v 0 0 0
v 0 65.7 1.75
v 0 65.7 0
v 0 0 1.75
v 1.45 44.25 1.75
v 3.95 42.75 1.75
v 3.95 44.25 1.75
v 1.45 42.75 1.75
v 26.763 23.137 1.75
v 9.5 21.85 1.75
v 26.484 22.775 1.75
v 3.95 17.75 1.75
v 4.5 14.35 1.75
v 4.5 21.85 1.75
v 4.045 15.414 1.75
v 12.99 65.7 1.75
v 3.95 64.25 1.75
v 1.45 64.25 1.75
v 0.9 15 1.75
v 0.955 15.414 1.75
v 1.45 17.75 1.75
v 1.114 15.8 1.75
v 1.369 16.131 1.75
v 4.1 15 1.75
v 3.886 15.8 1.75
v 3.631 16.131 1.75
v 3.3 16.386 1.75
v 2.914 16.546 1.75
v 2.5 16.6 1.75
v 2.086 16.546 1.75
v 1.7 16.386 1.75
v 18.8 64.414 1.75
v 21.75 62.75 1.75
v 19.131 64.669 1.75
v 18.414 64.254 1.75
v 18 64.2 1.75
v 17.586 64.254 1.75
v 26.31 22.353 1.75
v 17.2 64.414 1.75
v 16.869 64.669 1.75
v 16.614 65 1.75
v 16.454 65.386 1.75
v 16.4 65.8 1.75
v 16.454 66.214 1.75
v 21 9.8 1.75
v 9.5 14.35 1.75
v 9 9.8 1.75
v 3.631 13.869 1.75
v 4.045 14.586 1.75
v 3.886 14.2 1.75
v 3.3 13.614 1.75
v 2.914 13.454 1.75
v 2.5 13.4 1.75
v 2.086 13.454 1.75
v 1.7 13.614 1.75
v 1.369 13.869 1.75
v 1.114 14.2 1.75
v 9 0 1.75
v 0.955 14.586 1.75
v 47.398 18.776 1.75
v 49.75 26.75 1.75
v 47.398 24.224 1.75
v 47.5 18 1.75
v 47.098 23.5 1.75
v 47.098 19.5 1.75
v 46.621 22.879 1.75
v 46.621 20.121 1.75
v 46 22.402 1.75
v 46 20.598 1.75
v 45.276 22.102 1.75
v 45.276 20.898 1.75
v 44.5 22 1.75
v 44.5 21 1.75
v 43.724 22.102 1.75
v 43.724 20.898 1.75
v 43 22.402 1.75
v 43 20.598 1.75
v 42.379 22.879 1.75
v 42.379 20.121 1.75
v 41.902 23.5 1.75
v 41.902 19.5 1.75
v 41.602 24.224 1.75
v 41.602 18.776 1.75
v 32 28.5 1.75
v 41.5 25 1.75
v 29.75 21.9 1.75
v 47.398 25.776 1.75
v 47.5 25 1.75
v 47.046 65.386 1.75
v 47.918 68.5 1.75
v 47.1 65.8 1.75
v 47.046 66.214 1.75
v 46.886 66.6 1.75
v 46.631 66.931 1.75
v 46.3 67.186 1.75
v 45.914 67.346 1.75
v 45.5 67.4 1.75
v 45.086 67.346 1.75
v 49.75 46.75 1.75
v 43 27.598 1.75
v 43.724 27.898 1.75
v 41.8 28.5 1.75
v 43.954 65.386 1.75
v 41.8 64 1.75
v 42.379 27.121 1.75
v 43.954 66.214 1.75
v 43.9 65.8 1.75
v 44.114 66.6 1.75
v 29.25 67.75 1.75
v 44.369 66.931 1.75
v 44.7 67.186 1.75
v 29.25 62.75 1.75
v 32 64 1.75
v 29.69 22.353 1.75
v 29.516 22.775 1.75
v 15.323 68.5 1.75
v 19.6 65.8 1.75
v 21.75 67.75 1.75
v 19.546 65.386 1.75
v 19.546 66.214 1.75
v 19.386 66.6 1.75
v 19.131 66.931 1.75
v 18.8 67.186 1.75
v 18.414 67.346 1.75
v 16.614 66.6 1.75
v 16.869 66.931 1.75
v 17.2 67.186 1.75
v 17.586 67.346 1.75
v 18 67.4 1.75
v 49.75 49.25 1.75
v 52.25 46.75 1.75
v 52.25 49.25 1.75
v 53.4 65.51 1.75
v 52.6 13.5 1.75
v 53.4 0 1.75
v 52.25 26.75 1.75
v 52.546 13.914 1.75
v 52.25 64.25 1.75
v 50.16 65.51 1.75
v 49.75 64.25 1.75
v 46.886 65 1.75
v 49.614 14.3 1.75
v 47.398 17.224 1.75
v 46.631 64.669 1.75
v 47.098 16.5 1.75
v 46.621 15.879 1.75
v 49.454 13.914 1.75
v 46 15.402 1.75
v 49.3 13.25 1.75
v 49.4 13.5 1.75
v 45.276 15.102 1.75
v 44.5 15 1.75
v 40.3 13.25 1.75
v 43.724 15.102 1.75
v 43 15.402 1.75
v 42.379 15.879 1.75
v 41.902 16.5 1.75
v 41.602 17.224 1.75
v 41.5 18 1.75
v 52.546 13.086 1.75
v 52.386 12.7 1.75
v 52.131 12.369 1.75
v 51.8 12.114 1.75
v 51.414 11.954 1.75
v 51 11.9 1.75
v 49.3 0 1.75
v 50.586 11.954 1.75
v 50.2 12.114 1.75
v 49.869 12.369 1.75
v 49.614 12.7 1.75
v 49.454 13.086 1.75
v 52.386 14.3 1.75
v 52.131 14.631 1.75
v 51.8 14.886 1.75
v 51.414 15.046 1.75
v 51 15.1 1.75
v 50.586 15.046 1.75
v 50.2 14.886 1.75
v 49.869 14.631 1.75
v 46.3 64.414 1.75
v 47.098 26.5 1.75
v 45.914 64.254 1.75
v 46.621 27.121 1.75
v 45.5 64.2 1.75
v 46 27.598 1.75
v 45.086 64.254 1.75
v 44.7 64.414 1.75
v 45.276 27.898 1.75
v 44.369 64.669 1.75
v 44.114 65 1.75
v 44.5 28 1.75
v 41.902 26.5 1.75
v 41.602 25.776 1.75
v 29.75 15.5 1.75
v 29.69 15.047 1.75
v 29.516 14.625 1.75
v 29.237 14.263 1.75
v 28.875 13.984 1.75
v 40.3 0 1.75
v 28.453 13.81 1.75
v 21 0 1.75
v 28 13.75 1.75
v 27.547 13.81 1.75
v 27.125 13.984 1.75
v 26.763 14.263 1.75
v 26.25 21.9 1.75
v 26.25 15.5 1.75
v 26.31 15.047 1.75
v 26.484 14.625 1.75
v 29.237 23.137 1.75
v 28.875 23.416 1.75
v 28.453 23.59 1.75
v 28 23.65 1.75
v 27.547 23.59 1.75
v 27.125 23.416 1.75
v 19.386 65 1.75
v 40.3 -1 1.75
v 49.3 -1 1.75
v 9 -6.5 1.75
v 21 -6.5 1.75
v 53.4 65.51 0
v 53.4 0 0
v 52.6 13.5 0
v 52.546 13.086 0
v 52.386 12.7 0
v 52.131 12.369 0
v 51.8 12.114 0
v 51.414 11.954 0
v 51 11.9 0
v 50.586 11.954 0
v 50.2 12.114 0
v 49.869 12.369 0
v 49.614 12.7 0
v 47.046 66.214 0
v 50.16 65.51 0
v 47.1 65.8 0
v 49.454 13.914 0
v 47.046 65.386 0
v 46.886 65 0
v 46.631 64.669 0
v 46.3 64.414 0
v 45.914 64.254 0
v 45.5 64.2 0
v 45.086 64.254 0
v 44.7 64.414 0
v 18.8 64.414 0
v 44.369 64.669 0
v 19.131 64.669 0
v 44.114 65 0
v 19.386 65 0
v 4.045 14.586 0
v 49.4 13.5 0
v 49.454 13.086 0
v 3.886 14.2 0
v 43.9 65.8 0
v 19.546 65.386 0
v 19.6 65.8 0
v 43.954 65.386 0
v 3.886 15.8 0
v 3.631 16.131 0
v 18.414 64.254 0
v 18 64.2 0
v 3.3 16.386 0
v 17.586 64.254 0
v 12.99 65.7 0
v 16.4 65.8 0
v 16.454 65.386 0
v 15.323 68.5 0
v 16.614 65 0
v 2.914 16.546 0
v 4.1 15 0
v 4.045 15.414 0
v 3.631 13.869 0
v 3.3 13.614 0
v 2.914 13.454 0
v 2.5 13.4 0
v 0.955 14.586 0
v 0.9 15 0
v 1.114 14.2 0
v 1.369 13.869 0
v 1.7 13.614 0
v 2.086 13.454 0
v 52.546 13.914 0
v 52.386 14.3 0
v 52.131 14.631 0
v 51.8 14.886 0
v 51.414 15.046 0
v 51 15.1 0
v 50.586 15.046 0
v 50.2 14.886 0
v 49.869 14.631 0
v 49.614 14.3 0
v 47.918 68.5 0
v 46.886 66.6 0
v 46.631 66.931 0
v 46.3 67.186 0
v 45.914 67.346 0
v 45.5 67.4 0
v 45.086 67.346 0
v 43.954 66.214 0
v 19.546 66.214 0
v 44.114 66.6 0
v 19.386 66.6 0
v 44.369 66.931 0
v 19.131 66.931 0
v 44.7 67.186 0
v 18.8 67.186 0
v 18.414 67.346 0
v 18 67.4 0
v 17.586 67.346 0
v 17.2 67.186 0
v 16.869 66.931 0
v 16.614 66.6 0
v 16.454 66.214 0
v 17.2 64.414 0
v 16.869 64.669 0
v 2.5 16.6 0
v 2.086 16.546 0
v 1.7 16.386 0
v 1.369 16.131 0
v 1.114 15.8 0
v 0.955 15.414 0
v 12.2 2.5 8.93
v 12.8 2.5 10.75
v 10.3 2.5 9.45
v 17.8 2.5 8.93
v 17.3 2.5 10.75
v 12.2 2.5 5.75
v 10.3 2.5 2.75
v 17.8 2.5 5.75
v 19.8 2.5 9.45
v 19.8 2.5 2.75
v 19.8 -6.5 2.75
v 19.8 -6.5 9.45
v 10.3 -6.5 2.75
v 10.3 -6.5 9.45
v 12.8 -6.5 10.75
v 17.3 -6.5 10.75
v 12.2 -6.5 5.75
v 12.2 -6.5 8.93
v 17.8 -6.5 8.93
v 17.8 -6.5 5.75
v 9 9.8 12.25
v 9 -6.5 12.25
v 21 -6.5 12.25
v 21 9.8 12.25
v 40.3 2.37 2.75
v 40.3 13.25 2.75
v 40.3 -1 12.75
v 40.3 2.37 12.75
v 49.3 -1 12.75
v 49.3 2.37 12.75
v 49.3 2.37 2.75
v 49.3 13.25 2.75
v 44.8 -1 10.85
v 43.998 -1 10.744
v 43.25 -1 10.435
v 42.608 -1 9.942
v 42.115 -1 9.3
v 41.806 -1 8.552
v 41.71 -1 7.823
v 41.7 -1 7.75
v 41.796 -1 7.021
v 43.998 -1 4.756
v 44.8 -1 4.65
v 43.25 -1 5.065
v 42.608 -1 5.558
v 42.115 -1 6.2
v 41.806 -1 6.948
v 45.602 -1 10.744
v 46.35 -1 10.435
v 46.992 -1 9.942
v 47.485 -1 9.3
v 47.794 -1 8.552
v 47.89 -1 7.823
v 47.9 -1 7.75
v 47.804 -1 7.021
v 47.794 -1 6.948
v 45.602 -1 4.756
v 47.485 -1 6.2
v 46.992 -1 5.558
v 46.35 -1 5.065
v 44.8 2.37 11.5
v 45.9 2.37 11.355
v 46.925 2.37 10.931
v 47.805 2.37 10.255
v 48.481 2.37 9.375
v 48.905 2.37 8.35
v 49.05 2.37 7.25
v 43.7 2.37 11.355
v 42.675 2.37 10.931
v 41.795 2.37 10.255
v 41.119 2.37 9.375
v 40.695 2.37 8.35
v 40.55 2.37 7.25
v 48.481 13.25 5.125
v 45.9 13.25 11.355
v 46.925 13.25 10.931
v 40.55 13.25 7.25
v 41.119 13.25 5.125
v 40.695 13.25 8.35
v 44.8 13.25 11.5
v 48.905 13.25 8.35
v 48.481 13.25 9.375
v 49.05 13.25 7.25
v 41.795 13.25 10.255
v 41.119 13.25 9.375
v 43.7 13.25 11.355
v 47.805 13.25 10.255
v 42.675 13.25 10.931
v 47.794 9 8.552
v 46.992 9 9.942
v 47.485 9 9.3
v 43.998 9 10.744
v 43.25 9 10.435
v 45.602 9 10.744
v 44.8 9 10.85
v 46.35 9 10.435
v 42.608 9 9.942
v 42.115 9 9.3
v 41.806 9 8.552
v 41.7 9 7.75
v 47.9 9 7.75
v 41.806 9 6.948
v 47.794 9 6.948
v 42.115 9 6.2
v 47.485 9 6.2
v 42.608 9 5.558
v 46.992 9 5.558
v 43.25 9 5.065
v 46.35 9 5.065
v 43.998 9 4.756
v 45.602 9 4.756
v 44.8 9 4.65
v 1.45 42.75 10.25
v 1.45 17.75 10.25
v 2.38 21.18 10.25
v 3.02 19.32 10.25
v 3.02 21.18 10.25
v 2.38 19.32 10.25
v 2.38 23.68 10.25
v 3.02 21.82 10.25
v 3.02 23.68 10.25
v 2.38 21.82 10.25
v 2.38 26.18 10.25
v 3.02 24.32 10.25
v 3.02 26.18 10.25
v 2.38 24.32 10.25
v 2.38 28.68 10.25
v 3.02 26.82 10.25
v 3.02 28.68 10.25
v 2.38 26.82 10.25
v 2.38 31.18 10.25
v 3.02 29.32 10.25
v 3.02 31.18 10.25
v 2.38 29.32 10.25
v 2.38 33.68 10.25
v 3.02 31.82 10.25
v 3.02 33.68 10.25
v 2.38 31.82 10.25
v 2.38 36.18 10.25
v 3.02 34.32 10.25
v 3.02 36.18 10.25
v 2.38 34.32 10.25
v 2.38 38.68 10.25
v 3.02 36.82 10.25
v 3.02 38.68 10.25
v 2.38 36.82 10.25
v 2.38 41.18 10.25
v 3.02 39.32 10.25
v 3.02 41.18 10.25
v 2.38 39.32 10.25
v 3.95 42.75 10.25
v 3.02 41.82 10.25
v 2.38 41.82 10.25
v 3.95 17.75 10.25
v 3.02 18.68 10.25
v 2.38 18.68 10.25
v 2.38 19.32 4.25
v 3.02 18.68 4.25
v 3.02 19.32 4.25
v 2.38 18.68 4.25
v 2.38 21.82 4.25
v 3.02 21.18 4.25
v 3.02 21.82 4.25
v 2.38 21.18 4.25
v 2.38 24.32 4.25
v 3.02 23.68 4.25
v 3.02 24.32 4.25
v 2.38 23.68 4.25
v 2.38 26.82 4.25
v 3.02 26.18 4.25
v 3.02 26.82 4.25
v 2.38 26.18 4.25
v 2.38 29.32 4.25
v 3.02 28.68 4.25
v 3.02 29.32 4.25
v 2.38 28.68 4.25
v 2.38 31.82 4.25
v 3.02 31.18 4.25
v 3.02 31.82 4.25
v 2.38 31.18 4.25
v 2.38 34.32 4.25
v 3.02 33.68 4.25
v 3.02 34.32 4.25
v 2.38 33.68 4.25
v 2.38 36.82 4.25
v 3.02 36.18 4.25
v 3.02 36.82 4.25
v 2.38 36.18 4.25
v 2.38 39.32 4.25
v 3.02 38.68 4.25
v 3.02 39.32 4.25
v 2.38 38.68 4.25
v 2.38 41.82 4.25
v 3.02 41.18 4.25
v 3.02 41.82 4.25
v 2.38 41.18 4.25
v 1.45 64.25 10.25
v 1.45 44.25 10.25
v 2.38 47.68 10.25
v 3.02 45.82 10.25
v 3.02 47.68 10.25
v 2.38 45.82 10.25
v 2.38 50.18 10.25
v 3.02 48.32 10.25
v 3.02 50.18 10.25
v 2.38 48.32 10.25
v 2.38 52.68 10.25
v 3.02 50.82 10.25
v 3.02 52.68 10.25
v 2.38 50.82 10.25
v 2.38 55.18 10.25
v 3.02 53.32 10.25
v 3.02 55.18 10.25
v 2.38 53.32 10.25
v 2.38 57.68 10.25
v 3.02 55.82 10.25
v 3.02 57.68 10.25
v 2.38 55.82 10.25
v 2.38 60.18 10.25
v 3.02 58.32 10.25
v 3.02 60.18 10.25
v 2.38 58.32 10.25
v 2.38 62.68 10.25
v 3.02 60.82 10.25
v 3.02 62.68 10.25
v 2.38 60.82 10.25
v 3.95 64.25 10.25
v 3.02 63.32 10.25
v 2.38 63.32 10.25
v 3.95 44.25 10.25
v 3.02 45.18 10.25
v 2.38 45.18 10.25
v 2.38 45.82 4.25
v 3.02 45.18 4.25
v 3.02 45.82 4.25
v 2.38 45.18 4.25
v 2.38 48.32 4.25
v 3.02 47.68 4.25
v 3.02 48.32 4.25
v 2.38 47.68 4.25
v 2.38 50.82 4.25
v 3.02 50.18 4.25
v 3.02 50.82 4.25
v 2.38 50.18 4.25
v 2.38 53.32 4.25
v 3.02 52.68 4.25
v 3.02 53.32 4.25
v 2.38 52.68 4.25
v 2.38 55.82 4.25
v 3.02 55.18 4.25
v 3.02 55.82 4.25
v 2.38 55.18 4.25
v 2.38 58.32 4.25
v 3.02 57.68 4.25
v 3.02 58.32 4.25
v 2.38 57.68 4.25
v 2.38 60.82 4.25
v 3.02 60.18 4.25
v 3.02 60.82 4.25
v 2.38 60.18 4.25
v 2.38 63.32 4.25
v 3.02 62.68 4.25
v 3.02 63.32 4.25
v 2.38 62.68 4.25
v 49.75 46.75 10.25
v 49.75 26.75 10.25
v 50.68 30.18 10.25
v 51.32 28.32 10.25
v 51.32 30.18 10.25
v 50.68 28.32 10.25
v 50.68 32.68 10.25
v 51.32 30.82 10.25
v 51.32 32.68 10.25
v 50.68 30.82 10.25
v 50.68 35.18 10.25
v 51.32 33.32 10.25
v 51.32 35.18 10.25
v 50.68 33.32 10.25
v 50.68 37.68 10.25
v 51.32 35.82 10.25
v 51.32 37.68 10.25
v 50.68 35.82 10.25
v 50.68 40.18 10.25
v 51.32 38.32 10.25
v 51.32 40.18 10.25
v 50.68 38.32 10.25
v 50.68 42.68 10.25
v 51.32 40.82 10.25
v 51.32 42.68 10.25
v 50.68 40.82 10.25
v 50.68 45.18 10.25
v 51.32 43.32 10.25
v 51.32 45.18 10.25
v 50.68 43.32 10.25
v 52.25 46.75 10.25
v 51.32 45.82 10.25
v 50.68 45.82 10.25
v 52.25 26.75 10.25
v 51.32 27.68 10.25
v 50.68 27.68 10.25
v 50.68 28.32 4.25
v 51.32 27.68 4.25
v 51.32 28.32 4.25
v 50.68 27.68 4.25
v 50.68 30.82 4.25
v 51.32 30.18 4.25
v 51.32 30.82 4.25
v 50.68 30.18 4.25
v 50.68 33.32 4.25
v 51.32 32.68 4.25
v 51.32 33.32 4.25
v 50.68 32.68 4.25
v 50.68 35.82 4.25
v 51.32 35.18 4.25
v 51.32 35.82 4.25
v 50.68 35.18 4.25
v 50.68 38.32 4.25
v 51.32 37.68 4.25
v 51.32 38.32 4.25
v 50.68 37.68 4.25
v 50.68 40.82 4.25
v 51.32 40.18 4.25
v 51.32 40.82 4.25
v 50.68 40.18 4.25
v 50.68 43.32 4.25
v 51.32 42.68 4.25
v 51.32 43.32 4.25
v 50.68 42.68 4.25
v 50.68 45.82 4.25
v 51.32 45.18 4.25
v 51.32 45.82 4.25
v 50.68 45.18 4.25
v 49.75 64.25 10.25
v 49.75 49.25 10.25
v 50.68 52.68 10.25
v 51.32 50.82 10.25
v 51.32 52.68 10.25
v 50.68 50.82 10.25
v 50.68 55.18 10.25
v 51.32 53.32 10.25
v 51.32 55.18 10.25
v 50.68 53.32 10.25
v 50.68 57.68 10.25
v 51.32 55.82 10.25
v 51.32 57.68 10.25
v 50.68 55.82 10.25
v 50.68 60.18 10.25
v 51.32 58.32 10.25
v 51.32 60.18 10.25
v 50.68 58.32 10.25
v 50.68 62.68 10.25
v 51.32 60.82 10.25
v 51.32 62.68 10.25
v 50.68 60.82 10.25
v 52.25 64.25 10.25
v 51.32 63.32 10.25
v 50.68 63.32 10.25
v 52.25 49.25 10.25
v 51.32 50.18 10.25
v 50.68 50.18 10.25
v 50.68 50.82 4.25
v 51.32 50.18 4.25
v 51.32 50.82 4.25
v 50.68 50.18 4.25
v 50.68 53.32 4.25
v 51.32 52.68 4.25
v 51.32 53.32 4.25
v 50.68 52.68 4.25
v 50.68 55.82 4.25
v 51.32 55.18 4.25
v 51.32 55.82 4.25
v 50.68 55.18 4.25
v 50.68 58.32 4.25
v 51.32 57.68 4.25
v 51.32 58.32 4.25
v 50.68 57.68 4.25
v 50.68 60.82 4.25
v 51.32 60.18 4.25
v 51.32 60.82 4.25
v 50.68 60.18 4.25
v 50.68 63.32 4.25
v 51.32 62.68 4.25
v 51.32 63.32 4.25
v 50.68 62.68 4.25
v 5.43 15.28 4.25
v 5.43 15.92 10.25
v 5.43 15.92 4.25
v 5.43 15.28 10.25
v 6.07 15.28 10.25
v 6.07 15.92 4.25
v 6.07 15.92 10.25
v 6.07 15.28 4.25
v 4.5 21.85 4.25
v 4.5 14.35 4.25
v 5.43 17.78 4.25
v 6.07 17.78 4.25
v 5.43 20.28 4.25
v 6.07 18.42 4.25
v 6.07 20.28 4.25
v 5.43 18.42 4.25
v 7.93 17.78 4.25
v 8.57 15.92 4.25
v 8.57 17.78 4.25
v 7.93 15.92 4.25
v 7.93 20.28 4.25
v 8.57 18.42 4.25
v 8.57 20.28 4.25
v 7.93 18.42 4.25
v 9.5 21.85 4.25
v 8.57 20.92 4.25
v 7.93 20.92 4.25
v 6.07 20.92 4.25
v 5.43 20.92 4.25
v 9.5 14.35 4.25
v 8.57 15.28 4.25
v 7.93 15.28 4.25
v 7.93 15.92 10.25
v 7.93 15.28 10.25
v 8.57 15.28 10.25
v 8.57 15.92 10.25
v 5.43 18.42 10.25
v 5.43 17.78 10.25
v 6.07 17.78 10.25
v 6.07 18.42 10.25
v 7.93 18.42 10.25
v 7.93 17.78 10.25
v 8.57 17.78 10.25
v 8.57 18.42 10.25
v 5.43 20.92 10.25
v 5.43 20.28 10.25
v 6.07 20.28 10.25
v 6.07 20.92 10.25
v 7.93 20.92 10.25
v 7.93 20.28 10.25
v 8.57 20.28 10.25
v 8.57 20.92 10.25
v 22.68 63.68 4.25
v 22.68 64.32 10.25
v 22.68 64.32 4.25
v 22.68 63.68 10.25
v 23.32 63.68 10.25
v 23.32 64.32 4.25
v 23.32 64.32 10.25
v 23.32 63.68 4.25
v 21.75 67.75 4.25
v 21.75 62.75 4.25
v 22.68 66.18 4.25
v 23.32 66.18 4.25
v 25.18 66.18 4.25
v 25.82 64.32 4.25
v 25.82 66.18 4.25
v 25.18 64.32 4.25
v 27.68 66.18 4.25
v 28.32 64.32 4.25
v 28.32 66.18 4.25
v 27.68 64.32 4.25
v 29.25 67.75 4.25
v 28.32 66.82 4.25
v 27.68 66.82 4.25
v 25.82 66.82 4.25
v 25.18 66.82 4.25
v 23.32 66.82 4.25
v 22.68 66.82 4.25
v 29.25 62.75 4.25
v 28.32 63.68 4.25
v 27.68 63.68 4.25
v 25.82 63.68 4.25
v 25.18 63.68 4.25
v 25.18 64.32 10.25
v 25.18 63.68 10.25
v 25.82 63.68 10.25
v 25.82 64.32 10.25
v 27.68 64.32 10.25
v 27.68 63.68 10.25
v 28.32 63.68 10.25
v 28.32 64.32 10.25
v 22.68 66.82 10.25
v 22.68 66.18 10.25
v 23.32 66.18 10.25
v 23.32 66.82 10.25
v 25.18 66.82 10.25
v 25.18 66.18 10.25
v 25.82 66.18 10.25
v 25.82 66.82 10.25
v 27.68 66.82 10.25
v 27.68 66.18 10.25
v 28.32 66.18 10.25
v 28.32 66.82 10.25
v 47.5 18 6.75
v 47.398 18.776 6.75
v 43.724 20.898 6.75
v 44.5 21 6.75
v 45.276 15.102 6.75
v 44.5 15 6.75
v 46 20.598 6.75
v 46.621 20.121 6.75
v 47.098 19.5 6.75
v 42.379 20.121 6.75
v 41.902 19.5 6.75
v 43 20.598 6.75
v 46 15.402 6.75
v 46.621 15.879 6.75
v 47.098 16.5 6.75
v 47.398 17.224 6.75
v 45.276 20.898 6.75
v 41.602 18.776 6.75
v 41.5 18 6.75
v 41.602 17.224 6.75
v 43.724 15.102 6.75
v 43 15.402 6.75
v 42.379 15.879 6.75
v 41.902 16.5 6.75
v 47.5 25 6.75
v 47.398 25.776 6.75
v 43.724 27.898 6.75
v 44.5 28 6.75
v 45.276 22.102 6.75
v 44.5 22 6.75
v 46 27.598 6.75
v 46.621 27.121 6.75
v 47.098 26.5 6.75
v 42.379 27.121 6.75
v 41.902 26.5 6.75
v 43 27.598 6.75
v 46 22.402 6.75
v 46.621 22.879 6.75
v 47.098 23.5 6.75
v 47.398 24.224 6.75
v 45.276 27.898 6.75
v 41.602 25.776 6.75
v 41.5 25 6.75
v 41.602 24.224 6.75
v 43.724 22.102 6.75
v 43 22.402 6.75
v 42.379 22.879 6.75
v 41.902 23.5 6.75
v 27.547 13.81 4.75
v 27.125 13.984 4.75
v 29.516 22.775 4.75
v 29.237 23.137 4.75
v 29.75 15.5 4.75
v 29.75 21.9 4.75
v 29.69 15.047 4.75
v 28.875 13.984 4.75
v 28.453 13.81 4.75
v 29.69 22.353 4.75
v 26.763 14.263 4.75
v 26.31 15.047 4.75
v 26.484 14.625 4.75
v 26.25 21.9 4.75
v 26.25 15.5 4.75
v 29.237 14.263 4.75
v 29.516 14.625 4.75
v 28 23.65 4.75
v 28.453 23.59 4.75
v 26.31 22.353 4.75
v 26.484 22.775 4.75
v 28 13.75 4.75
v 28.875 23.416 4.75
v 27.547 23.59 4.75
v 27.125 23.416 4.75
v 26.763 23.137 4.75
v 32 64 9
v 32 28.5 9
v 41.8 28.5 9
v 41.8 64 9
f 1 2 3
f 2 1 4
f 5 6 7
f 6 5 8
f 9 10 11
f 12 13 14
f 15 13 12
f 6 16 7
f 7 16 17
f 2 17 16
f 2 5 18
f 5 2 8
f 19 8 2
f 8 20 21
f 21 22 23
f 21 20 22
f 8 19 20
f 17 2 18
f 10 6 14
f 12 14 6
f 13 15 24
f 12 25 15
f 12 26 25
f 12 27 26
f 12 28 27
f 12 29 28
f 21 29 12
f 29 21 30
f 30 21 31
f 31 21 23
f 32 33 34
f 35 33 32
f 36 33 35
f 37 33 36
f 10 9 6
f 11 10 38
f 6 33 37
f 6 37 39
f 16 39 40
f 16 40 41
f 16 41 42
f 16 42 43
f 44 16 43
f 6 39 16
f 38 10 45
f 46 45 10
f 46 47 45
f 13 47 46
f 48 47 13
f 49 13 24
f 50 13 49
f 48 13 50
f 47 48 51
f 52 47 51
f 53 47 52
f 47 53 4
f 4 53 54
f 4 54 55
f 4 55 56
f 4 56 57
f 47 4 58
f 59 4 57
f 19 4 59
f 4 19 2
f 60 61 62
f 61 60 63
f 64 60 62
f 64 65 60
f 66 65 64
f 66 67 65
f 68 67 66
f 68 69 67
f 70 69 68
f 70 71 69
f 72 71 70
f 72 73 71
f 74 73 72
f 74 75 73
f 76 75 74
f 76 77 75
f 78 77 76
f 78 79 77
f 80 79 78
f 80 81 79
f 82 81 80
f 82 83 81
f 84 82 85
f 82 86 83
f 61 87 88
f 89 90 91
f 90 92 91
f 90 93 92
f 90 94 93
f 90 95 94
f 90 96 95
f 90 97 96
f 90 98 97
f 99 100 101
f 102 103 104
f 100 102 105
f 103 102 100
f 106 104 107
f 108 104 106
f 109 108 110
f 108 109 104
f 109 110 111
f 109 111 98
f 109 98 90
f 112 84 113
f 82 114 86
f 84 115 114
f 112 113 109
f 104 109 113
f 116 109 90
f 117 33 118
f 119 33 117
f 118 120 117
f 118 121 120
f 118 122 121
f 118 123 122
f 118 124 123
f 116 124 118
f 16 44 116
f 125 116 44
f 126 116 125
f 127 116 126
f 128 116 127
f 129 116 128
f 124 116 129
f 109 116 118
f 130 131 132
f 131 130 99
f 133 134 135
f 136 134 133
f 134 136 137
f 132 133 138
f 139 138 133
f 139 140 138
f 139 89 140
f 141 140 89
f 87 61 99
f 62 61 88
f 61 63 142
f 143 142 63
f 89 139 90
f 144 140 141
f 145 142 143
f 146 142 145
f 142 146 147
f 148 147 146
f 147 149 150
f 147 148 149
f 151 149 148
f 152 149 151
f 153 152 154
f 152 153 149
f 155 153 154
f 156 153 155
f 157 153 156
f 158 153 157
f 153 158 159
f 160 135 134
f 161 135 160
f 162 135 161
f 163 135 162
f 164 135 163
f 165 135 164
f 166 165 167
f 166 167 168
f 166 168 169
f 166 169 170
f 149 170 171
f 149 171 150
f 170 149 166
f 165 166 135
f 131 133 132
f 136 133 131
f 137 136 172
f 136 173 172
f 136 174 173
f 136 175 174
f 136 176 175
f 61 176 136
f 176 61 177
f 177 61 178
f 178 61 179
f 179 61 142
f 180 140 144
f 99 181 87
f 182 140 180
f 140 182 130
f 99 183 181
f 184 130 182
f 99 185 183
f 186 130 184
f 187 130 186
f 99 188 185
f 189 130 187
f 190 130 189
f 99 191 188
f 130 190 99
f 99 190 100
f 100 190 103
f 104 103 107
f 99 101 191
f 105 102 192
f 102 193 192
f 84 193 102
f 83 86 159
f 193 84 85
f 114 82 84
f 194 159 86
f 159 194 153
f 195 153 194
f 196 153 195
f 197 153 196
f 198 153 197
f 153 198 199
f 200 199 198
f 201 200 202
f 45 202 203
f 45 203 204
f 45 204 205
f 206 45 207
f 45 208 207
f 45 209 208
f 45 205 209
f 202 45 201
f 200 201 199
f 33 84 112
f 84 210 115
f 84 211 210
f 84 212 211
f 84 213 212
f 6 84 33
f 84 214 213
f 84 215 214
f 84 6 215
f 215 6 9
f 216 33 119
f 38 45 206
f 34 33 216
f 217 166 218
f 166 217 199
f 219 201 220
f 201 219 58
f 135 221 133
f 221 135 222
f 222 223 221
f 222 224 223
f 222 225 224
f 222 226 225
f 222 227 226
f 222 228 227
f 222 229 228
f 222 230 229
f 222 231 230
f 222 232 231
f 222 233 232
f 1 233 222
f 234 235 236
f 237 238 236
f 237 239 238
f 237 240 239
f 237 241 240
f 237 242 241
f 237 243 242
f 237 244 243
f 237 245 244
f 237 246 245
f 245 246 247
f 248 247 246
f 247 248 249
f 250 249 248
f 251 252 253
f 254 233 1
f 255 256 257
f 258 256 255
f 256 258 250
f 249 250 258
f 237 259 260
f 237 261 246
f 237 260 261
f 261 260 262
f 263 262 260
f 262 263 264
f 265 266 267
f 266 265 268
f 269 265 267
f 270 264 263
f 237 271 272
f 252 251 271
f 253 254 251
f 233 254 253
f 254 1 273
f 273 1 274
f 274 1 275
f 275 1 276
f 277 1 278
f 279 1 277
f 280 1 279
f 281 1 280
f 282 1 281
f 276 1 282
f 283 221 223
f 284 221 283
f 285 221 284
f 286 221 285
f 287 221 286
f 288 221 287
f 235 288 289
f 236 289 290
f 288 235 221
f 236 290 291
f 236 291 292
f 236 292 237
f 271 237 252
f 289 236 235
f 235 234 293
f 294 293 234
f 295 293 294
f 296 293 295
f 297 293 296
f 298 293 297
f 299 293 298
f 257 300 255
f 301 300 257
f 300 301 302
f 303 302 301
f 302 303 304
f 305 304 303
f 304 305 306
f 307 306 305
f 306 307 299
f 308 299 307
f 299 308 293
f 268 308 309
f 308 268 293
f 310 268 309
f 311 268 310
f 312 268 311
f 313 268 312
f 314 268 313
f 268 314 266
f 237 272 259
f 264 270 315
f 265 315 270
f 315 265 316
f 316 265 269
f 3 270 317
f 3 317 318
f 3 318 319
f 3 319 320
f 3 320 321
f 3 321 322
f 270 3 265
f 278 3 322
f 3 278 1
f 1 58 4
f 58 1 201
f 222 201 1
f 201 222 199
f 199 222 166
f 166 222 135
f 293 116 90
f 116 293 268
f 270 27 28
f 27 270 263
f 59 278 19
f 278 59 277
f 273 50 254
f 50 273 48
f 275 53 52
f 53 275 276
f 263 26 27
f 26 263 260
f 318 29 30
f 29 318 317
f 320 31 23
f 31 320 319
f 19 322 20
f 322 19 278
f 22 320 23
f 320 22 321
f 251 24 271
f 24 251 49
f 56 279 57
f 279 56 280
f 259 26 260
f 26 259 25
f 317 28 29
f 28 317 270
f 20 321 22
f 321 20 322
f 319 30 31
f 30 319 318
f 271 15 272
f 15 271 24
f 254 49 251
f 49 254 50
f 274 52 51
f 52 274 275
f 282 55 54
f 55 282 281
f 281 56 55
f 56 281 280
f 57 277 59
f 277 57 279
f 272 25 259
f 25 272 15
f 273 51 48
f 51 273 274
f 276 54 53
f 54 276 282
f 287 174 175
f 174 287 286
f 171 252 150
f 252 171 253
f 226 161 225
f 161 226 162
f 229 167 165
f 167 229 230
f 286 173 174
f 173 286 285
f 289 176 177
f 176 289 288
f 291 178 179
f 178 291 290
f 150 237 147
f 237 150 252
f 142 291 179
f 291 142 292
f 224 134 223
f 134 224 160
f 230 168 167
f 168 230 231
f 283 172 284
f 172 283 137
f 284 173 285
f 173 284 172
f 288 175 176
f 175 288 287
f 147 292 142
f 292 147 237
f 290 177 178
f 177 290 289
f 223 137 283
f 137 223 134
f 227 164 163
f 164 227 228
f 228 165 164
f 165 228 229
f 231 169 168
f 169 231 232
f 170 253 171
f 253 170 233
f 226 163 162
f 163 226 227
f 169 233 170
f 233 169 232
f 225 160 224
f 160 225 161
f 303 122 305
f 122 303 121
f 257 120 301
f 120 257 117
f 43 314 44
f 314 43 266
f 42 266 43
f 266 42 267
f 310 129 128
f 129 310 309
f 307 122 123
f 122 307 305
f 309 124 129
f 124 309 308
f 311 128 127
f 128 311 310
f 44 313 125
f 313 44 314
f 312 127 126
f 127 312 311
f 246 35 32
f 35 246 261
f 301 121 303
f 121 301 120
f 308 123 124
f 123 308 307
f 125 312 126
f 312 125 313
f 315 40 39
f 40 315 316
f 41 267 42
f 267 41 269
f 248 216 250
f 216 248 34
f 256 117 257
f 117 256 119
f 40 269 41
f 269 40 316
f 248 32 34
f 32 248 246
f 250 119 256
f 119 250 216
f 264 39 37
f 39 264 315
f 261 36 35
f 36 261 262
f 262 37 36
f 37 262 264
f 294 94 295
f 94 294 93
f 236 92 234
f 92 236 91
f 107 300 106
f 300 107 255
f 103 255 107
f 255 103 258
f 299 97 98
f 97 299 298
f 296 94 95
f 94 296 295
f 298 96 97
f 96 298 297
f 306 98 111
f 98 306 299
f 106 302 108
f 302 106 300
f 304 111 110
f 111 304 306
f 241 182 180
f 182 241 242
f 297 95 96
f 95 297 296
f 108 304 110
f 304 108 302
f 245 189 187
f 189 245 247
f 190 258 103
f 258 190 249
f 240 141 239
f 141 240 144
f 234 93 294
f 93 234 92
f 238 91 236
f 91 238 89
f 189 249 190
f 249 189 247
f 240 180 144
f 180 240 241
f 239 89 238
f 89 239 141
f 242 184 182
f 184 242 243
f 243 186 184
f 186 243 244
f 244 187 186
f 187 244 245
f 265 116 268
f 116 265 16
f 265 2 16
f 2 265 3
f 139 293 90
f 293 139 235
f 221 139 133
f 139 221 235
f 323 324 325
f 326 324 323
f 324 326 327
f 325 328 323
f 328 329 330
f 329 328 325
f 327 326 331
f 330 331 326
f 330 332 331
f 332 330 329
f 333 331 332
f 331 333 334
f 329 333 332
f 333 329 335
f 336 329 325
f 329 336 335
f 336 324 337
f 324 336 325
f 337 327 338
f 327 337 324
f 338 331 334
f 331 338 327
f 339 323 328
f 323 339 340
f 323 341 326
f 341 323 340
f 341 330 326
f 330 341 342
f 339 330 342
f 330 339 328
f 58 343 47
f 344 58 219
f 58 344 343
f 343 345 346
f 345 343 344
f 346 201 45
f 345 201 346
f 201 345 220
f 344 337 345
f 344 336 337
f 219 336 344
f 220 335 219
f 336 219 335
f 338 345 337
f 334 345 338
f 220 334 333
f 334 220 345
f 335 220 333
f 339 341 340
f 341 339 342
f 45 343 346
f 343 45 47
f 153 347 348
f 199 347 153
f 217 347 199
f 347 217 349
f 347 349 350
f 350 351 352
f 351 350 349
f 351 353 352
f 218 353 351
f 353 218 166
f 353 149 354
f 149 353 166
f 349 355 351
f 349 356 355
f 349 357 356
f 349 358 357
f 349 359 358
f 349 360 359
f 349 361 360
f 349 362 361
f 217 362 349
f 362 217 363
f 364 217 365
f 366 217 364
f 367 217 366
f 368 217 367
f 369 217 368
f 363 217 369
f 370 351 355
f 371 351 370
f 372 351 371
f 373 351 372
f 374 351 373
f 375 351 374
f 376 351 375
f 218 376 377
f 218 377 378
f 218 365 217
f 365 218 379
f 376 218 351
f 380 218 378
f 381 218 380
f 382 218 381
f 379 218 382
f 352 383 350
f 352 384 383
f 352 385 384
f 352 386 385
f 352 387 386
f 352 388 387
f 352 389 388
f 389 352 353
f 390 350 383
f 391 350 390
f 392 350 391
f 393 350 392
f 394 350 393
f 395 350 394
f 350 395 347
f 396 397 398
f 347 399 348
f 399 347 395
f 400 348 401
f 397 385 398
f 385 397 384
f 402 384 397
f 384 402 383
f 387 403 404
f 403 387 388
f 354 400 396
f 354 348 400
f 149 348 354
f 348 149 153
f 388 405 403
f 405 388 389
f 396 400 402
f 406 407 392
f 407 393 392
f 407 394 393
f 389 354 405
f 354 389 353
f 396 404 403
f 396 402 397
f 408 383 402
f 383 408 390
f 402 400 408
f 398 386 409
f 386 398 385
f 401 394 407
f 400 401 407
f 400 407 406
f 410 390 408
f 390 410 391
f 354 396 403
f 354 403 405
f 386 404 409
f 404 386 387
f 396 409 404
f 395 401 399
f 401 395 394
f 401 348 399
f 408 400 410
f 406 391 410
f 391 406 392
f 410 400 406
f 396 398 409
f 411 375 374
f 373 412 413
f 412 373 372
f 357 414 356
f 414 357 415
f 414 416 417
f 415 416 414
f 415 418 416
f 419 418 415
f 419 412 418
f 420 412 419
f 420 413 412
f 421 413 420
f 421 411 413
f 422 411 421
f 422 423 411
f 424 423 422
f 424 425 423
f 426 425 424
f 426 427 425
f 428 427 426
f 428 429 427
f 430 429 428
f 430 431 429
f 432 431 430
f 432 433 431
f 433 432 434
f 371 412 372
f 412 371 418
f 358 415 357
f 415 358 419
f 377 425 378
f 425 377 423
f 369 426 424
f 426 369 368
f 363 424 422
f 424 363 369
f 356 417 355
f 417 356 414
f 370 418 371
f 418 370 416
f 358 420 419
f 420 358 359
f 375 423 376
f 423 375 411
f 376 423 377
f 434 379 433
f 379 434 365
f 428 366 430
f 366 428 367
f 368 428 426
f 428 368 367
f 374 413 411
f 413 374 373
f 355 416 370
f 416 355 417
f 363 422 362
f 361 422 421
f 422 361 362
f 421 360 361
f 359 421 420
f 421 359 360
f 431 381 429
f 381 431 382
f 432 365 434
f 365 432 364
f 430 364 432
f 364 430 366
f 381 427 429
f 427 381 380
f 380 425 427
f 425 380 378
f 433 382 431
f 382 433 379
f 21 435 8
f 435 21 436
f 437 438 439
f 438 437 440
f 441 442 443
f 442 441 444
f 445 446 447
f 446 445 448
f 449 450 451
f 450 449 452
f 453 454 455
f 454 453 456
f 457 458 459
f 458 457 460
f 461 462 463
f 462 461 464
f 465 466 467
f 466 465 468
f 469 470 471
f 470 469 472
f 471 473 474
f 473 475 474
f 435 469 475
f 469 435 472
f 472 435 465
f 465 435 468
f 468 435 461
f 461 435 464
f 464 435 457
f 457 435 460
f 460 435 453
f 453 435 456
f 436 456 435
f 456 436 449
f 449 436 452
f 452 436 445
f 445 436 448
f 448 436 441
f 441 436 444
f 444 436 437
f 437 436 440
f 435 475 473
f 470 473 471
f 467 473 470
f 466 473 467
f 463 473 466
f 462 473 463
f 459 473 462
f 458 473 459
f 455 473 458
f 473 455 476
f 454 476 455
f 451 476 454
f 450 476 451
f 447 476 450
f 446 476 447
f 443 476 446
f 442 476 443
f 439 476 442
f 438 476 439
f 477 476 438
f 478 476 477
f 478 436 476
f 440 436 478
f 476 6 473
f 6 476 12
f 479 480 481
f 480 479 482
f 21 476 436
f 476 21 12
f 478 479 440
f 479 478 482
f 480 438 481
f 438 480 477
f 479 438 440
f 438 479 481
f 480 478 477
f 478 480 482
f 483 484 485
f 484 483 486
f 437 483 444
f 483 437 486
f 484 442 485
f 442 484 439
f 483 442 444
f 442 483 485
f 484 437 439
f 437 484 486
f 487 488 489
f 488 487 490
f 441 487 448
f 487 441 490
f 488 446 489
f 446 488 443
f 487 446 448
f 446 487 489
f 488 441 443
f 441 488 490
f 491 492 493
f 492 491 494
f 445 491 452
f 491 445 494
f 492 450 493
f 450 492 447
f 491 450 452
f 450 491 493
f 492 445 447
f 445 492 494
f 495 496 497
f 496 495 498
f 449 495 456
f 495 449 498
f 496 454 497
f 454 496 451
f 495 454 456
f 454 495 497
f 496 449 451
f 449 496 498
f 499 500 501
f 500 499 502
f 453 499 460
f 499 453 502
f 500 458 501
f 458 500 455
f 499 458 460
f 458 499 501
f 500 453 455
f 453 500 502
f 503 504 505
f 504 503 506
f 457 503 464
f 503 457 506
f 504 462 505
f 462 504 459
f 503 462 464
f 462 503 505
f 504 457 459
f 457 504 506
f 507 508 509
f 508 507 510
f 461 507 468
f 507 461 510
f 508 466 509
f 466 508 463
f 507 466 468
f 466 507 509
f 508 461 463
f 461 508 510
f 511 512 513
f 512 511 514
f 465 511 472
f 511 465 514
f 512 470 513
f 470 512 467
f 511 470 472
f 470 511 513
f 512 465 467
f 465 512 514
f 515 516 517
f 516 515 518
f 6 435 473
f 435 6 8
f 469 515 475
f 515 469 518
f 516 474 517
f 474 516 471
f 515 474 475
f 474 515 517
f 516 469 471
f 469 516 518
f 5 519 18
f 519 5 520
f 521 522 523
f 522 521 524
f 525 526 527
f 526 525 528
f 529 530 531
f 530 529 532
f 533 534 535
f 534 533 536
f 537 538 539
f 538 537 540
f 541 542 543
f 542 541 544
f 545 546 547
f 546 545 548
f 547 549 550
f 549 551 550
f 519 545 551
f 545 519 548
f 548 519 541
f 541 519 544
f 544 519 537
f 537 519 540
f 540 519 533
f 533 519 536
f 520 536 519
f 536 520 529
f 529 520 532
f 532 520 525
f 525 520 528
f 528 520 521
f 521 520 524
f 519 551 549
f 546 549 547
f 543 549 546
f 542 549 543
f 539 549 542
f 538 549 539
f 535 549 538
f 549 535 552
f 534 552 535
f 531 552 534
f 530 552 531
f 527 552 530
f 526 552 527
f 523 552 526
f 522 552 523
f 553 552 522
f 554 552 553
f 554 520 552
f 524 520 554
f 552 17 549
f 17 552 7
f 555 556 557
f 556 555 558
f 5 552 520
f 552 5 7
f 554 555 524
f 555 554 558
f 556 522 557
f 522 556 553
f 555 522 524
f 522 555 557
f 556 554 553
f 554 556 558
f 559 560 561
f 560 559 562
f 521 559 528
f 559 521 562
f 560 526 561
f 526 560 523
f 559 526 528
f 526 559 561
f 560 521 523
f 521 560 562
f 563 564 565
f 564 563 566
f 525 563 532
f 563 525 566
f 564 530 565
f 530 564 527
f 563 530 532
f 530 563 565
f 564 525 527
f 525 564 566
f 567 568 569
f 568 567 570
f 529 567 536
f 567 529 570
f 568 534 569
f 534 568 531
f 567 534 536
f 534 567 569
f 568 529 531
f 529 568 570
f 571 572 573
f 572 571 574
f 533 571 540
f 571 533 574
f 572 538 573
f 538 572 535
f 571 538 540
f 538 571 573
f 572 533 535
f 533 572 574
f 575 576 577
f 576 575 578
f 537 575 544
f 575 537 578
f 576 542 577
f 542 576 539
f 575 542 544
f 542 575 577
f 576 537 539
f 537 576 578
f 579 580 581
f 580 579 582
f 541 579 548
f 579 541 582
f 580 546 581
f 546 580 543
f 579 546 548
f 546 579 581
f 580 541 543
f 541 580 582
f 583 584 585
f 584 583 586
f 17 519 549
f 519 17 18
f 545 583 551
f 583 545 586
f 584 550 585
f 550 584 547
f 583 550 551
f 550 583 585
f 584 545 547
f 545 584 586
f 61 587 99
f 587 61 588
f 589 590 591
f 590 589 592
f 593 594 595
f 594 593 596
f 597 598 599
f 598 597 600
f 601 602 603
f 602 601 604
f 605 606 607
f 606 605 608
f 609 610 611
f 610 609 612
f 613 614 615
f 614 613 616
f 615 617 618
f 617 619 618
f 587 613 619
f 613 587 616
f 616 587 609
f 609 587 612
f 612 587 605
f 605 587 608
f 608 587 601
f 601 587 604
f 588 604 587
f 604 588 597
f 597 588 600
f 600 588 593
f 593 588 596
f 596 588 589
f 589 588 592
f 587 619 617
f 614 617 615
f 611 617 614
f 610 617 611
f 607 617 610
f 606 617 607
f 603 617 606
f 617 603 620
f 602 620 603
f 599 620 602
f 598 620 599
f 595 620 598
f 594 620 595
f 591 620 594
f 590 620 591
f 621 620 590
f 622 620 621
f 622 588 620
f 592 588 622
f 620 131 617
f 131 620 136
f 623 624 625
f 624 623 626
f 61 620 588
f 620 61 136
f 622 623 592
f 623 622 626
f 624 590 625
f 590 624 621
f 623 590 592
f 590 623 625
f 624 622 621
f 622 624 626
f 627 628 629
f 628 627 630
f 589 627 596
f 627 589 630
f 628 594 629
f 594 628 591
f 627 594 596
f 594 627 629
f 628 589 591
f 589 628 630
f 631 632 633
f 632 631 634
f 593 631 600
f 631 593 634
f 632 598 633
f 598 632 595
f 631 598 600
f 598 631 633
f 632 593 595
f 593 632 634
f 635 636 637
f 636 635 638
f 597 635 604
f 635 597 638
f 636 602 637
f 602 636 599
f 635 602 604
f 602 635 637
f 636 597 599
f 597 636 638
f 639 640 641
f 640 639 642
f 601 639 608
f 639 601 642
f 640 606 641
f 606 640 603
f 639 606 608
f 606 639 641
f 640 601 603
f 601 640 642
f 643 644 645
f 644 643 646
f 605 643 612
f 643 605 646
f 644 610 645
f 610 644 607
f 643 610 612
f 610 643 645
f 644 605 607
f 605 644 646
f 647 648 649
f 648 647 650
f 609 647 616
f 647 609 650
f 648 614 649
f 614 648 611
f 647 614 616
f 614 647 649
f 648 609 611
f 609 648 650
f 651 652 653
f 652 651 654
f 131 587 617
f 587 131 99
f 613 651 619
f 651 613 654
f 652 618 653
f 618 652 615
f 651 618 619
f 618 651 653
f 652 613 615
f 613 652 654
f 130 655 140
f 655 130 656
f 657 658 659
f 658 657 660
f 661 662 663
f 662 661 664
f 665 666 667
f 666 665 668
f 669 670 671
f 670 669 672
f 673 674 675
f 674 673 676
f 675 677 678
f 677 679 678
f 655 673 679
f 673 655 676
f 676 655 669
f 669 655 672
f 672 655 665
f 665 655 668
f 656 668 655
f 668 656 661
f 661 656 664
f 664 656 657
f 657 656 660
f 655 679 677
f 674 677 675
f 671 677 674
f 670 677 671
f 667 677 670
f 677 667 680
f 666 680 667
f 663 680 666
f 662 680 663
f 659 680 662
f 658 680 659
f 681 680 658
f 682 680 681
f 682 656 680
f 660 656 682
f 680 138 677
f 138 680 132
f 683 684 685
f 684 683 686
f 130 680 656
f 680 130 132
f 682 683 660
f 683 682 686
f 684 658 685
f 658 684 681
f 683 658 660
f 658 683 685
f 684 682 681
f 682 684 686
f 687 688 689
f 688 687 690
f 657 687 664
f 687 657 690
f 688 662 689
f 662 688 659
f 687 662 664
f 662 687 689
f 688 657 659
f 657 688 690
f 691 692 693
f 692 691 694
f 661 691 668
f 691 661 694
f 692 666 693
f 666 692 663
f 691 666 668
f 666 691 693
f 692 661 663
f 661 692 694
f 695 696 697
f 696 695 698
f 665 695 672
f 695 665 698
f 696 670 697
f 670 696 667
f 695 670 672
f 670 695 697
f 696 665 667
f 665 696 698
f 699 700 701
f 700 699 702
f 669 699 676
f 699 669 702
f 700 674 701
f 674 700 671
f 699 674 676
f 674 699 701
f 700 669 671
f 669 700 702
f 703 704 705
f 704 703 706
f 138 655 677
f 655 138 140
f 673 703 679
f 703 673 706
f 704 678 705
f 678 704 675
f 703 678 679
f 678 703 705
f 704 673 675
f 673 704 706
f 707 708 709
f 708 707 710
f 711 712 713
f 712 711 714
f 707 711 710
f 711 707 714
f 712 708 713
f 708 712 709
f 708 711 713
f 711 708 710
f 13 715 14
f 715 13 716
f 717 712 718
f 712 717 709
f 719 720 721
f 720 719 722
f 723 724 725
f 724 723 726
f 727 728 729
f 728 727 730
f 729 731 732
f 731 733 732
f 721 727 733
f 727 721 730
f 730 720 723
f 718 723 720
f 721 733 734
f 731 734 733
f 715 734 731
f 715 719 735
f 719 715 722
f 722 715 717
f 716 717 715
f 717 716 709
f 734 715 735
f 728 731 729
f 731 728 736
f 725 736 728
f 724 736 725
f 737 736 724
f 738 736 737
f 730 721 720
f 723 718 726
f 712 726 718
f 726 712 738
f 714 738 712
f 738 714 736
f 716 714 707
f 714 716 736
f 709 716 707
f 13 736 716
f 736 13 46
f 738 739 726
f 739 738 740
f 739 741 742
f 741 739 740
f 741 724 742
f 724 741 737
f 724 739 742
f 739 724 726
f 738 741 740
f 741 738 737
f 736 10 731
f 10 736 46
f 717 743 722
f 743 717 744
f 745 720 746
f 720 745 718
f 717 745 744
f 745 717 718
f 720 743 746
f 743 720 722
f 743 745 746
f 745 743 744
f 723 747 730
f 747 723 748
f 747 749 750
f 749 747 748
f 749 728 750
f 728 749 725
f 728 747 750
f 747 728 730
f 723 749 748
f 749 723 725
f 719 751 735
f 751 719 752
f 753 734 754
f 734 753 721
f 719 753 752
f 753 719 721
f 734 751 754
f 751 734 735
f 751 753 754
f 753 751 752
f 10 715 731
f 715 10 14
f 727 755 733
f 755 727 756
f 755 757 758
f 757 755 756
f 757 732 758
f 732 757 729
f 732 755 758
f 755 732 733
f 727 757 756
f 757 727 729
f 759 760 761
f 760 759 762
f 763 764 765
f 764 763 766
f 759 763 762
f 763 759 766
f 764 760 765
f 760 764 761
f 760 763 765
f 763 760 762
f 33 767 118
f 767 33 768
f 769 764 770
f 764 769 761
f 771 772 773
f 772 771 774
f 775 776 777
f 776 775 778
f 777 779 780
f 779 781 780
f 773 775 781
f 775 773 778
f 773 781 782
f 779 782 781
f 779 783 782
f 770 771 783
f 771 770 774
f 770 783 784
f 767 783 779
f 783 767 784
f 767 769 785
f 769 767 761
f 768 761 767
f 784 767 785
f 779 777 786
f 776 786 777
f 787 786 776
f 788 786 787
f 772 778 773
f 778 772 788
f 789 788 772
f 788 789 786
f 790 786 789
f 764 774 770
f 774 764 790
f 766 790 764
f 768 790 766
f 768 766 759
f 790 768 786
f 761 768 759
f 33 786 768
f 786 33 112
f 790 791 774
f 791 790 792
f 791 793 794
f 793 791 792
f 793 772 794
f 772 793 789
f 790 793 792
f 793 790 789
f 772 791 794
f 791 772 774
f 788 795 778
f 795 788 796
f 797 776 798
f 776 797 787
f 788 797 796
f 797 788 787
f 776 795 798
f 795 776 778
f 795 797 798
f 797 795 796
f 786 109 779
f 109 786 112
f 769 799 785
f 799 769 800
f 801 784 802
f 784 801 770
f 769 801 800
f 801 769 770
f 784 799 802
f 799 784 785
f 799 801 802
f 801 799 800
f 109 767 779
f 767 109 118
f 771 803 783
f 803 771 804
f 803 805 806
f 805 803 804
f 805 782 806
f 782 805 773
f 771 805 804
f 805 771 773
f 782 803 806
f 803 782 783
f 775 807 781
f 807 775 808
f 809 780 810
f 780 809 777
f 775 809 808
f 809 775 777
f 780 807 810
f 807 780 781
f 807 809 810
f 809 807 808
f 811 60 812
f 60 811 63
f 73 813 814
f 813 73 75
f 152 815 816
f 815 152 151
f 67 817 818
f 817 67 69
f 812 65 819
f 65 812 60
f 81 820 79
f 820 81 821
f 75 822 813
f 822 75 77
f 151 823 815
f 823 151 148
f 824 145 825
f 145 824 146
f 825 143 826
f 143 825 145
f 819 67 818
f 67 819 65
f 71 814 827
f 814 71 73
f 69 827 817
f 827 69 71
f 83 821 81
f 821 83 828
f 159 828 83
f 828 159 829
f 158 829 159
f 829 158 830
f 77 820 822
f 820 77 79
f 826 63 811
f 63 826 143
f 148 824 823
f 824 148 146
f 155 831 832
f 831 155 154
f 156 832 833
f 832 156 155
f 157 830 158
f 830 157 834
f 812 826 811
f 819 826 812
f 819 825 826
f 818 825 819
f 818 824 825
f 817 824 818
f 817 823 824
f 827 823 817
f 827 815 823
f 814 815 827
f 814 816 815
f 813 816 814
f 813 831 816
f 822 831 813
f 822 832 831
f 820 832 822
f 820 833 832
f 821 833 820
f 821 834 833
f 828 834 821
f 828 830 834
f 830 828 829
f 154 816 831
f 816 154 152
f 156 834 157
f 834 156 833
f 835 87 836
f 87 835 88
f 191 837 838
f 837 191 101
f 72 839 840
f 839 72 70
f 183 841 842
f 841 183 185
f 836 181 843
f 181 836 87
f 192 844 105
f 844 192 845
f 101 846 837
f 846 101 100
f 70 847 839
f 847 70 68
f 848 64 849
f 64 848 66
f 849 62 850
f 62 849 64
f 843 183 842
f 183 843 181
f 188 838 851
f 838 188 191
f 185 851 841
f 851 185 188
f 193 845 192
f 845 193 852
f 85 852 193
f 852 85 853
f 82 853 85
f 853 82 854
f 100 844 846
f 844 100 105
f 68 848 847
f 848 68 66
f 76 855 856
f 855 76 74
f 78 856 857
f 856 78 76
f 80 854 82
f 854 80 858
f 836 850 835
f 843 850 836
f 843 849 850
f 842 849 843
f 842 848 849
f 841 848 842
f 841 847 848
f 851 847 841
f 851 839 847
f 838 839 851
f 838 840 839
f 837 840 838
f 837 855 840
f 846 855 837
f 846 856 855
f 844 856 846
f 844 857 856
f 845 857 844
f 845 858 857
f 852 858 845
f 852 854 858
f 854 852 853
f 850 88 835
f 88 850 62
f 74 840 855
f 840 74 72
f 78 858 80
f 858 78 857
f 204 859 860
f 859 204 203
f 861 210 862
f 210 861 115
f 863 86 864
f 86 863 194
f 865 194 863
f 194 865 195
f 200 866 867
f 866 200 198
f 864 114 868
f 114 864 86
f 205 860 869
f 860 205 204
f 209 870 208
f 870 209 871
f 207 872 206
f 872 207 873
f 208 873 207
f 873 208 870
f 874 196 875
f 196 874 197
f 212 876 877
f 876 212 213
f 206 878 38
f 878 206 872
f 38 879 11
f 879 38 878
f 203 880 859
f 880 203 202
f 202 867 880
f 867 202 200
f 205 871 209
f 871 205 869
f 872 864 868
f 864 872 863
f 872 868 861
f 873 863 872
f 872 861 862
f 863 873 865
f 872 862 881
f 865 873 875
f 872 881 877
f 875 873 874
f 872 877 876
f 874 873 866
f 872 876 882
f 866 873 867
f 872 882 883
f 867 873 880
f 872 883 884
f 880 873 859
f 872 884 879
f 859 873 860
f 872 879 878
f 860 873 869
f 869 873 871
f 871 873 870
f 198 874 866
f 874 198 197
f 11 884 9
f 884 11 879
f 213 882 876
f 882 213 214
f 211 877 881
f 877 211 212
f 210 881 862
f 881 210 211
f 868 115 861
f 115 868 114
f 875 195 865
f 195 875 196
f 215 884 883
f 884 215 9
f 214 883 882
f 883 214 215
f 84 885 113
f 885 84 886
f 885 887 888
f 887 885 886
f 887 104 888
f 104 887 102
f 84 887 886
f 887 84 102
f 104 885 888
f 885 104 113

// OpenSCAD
module header(type="male",xPinCount=1,yPinCount=1,height=11.5){
    pinSpace = 2.5;
    for(i=[0:yPinCount-1]){
        translate([0,i*pinSpace,0]){
            for(j=[0:xPinCount-1]){
                //Pin
                translate([(j*pinSpace)-0.32,-0.32,0])
                    color("gold")cube([0.64,0.64,3]);
                if(type == "male" || type == 1){
                    translate([(j*pinSpace)-0.32,-0.32,3])
                        color("gold")cube([0.64,0.64,height - 3]);
                }//End of male
                if(type == "female" || type == 0){
                    difference(){
                        color([0.2,0.2,0.2])
                        translate([(j*pinSpace)-1.25,-1.25,5.5])
                            cube([pinSpace,2.5,height-5.5]);
                        
                        color([0.2,0.2,0.2])
                        translate([(j*pinSpace)-0.32,-0.32,3])
                            cube([0.64,0.64,height]);   
                    }//End of difference       
                }//End of female
                //Block
                color([0.2,0.2,0.2])
                translate([(j*pinSpace)-1.25,-1.25,3])
                    cube(pinSpace,2.5,2.5);
                
            }//End of xPin loop
        }//End of yPin loop
    }//End of yPin loop

}//End of module header

module USBJack(type="B"){
    if(type == "B" || type == "b")
    difference(){
        cube([12,16.3,10.5]);
        difference(){
            rotate([90,0,0])
            translate([1.3,1,-9])
            linear_extrude(height=10){
                polygon(points=[
                    [0,0],
                    [0,6.7],
                    [2.5,8],
                    [7,8],
                    [9.5,6.7],
                    [9.5,0]
                ]);//End of polygon
            }//End of linear_extrude
            translate([3.2,-1.1,4])
            cube([5.6,11,3.18]);
        }//End of second diff 
    }//End of first diff
    else{ echo("USB type no implimented yet");}
}


//board
difference(){
translate([0,0,-1.25]){
translate([0,0,1.25]){
    color("navy")
    difference(){
        cube([53.4,68.5,1.75]);
        translate([2.5,15,-0.01])
        cylinder(r=1.6,h=3,$fn=24);
        translate([51,13.5,-0.01])
        cylinder(r=1.6,h=3,$fn=24);
        translate([18,65.8,-0.01])
        cylinder(r=1.6,h=3,$fn=24);
        translate([45.5,65.8,-0.01])
        cylinder(r=1.6,h=3,$fn=24);
        translate([-0.01,65.7,-1])
        linear_extrude(height=5)
        polygon(points=[
            [0,0],
            [0,3],
            [15.5,3],
            [13,0]
        ]);
        
        translate([47.91,65.51,-1])
        linear_extrude(height=5)
        polygon(points=[
            [0,3],
            [5.5,3],
            [5.5,0],
            [2.25,0]
        ]);
    }
    //USB jack
    translate([9,-6.5,1.75])
    USBJack();
}

//Round Caps
translate([44.5,18,3])
cylinder(r=3,h=5,$fn=24);
translate([44.5,25,3])
cylinder(r=3,h=5,$fn=24);

//Oval Cap
translate([28,15.5,3])
hull(){
    cylinder(r=1.75,h=3,$fn=24);
    translate([0,6.4,0])
    cylinder(r=1.75,h=3,$fn=24);
}
//Power Jack
translate([40.3,-1,3])
color([0.2,0.2,0.2])
difference(){
    union(){
        cube([9,3.37,11]);
        hull(){
            cube([9,14.25,1]);
            rotate([-90,0,0])
            translate([4.5,-5.5,3.37])
            cylinder(r=4.25,h=10.88,$fn=24);
        }
    }
    rotate([90,0,0])
    translate([4.5,6,-10])
    cylinder(r=3.1,h=11,$fn=24);
}

//Chip
color([0.2,0.2,0.2])
translate([32,28.5,3])
cube([9.8,35.5,7.25]);

//TopHeaders
translate([2.7,19,0])
header(0,1,10);
translate([2.7,45.5,0])
header(0,1,8);

//BottomHeaders
translate([51,28,0])
header(0,1,8);
translate([51,50.5,0])
header(0,1,6);

//SDA SCL header
translate([5.75,15.6,0])
header(1,2,3);

//ICSP header
translate([23,64,0])
header(1,3,2);
}
translate([0,0,-3])
cube([100,100,3]);
}
